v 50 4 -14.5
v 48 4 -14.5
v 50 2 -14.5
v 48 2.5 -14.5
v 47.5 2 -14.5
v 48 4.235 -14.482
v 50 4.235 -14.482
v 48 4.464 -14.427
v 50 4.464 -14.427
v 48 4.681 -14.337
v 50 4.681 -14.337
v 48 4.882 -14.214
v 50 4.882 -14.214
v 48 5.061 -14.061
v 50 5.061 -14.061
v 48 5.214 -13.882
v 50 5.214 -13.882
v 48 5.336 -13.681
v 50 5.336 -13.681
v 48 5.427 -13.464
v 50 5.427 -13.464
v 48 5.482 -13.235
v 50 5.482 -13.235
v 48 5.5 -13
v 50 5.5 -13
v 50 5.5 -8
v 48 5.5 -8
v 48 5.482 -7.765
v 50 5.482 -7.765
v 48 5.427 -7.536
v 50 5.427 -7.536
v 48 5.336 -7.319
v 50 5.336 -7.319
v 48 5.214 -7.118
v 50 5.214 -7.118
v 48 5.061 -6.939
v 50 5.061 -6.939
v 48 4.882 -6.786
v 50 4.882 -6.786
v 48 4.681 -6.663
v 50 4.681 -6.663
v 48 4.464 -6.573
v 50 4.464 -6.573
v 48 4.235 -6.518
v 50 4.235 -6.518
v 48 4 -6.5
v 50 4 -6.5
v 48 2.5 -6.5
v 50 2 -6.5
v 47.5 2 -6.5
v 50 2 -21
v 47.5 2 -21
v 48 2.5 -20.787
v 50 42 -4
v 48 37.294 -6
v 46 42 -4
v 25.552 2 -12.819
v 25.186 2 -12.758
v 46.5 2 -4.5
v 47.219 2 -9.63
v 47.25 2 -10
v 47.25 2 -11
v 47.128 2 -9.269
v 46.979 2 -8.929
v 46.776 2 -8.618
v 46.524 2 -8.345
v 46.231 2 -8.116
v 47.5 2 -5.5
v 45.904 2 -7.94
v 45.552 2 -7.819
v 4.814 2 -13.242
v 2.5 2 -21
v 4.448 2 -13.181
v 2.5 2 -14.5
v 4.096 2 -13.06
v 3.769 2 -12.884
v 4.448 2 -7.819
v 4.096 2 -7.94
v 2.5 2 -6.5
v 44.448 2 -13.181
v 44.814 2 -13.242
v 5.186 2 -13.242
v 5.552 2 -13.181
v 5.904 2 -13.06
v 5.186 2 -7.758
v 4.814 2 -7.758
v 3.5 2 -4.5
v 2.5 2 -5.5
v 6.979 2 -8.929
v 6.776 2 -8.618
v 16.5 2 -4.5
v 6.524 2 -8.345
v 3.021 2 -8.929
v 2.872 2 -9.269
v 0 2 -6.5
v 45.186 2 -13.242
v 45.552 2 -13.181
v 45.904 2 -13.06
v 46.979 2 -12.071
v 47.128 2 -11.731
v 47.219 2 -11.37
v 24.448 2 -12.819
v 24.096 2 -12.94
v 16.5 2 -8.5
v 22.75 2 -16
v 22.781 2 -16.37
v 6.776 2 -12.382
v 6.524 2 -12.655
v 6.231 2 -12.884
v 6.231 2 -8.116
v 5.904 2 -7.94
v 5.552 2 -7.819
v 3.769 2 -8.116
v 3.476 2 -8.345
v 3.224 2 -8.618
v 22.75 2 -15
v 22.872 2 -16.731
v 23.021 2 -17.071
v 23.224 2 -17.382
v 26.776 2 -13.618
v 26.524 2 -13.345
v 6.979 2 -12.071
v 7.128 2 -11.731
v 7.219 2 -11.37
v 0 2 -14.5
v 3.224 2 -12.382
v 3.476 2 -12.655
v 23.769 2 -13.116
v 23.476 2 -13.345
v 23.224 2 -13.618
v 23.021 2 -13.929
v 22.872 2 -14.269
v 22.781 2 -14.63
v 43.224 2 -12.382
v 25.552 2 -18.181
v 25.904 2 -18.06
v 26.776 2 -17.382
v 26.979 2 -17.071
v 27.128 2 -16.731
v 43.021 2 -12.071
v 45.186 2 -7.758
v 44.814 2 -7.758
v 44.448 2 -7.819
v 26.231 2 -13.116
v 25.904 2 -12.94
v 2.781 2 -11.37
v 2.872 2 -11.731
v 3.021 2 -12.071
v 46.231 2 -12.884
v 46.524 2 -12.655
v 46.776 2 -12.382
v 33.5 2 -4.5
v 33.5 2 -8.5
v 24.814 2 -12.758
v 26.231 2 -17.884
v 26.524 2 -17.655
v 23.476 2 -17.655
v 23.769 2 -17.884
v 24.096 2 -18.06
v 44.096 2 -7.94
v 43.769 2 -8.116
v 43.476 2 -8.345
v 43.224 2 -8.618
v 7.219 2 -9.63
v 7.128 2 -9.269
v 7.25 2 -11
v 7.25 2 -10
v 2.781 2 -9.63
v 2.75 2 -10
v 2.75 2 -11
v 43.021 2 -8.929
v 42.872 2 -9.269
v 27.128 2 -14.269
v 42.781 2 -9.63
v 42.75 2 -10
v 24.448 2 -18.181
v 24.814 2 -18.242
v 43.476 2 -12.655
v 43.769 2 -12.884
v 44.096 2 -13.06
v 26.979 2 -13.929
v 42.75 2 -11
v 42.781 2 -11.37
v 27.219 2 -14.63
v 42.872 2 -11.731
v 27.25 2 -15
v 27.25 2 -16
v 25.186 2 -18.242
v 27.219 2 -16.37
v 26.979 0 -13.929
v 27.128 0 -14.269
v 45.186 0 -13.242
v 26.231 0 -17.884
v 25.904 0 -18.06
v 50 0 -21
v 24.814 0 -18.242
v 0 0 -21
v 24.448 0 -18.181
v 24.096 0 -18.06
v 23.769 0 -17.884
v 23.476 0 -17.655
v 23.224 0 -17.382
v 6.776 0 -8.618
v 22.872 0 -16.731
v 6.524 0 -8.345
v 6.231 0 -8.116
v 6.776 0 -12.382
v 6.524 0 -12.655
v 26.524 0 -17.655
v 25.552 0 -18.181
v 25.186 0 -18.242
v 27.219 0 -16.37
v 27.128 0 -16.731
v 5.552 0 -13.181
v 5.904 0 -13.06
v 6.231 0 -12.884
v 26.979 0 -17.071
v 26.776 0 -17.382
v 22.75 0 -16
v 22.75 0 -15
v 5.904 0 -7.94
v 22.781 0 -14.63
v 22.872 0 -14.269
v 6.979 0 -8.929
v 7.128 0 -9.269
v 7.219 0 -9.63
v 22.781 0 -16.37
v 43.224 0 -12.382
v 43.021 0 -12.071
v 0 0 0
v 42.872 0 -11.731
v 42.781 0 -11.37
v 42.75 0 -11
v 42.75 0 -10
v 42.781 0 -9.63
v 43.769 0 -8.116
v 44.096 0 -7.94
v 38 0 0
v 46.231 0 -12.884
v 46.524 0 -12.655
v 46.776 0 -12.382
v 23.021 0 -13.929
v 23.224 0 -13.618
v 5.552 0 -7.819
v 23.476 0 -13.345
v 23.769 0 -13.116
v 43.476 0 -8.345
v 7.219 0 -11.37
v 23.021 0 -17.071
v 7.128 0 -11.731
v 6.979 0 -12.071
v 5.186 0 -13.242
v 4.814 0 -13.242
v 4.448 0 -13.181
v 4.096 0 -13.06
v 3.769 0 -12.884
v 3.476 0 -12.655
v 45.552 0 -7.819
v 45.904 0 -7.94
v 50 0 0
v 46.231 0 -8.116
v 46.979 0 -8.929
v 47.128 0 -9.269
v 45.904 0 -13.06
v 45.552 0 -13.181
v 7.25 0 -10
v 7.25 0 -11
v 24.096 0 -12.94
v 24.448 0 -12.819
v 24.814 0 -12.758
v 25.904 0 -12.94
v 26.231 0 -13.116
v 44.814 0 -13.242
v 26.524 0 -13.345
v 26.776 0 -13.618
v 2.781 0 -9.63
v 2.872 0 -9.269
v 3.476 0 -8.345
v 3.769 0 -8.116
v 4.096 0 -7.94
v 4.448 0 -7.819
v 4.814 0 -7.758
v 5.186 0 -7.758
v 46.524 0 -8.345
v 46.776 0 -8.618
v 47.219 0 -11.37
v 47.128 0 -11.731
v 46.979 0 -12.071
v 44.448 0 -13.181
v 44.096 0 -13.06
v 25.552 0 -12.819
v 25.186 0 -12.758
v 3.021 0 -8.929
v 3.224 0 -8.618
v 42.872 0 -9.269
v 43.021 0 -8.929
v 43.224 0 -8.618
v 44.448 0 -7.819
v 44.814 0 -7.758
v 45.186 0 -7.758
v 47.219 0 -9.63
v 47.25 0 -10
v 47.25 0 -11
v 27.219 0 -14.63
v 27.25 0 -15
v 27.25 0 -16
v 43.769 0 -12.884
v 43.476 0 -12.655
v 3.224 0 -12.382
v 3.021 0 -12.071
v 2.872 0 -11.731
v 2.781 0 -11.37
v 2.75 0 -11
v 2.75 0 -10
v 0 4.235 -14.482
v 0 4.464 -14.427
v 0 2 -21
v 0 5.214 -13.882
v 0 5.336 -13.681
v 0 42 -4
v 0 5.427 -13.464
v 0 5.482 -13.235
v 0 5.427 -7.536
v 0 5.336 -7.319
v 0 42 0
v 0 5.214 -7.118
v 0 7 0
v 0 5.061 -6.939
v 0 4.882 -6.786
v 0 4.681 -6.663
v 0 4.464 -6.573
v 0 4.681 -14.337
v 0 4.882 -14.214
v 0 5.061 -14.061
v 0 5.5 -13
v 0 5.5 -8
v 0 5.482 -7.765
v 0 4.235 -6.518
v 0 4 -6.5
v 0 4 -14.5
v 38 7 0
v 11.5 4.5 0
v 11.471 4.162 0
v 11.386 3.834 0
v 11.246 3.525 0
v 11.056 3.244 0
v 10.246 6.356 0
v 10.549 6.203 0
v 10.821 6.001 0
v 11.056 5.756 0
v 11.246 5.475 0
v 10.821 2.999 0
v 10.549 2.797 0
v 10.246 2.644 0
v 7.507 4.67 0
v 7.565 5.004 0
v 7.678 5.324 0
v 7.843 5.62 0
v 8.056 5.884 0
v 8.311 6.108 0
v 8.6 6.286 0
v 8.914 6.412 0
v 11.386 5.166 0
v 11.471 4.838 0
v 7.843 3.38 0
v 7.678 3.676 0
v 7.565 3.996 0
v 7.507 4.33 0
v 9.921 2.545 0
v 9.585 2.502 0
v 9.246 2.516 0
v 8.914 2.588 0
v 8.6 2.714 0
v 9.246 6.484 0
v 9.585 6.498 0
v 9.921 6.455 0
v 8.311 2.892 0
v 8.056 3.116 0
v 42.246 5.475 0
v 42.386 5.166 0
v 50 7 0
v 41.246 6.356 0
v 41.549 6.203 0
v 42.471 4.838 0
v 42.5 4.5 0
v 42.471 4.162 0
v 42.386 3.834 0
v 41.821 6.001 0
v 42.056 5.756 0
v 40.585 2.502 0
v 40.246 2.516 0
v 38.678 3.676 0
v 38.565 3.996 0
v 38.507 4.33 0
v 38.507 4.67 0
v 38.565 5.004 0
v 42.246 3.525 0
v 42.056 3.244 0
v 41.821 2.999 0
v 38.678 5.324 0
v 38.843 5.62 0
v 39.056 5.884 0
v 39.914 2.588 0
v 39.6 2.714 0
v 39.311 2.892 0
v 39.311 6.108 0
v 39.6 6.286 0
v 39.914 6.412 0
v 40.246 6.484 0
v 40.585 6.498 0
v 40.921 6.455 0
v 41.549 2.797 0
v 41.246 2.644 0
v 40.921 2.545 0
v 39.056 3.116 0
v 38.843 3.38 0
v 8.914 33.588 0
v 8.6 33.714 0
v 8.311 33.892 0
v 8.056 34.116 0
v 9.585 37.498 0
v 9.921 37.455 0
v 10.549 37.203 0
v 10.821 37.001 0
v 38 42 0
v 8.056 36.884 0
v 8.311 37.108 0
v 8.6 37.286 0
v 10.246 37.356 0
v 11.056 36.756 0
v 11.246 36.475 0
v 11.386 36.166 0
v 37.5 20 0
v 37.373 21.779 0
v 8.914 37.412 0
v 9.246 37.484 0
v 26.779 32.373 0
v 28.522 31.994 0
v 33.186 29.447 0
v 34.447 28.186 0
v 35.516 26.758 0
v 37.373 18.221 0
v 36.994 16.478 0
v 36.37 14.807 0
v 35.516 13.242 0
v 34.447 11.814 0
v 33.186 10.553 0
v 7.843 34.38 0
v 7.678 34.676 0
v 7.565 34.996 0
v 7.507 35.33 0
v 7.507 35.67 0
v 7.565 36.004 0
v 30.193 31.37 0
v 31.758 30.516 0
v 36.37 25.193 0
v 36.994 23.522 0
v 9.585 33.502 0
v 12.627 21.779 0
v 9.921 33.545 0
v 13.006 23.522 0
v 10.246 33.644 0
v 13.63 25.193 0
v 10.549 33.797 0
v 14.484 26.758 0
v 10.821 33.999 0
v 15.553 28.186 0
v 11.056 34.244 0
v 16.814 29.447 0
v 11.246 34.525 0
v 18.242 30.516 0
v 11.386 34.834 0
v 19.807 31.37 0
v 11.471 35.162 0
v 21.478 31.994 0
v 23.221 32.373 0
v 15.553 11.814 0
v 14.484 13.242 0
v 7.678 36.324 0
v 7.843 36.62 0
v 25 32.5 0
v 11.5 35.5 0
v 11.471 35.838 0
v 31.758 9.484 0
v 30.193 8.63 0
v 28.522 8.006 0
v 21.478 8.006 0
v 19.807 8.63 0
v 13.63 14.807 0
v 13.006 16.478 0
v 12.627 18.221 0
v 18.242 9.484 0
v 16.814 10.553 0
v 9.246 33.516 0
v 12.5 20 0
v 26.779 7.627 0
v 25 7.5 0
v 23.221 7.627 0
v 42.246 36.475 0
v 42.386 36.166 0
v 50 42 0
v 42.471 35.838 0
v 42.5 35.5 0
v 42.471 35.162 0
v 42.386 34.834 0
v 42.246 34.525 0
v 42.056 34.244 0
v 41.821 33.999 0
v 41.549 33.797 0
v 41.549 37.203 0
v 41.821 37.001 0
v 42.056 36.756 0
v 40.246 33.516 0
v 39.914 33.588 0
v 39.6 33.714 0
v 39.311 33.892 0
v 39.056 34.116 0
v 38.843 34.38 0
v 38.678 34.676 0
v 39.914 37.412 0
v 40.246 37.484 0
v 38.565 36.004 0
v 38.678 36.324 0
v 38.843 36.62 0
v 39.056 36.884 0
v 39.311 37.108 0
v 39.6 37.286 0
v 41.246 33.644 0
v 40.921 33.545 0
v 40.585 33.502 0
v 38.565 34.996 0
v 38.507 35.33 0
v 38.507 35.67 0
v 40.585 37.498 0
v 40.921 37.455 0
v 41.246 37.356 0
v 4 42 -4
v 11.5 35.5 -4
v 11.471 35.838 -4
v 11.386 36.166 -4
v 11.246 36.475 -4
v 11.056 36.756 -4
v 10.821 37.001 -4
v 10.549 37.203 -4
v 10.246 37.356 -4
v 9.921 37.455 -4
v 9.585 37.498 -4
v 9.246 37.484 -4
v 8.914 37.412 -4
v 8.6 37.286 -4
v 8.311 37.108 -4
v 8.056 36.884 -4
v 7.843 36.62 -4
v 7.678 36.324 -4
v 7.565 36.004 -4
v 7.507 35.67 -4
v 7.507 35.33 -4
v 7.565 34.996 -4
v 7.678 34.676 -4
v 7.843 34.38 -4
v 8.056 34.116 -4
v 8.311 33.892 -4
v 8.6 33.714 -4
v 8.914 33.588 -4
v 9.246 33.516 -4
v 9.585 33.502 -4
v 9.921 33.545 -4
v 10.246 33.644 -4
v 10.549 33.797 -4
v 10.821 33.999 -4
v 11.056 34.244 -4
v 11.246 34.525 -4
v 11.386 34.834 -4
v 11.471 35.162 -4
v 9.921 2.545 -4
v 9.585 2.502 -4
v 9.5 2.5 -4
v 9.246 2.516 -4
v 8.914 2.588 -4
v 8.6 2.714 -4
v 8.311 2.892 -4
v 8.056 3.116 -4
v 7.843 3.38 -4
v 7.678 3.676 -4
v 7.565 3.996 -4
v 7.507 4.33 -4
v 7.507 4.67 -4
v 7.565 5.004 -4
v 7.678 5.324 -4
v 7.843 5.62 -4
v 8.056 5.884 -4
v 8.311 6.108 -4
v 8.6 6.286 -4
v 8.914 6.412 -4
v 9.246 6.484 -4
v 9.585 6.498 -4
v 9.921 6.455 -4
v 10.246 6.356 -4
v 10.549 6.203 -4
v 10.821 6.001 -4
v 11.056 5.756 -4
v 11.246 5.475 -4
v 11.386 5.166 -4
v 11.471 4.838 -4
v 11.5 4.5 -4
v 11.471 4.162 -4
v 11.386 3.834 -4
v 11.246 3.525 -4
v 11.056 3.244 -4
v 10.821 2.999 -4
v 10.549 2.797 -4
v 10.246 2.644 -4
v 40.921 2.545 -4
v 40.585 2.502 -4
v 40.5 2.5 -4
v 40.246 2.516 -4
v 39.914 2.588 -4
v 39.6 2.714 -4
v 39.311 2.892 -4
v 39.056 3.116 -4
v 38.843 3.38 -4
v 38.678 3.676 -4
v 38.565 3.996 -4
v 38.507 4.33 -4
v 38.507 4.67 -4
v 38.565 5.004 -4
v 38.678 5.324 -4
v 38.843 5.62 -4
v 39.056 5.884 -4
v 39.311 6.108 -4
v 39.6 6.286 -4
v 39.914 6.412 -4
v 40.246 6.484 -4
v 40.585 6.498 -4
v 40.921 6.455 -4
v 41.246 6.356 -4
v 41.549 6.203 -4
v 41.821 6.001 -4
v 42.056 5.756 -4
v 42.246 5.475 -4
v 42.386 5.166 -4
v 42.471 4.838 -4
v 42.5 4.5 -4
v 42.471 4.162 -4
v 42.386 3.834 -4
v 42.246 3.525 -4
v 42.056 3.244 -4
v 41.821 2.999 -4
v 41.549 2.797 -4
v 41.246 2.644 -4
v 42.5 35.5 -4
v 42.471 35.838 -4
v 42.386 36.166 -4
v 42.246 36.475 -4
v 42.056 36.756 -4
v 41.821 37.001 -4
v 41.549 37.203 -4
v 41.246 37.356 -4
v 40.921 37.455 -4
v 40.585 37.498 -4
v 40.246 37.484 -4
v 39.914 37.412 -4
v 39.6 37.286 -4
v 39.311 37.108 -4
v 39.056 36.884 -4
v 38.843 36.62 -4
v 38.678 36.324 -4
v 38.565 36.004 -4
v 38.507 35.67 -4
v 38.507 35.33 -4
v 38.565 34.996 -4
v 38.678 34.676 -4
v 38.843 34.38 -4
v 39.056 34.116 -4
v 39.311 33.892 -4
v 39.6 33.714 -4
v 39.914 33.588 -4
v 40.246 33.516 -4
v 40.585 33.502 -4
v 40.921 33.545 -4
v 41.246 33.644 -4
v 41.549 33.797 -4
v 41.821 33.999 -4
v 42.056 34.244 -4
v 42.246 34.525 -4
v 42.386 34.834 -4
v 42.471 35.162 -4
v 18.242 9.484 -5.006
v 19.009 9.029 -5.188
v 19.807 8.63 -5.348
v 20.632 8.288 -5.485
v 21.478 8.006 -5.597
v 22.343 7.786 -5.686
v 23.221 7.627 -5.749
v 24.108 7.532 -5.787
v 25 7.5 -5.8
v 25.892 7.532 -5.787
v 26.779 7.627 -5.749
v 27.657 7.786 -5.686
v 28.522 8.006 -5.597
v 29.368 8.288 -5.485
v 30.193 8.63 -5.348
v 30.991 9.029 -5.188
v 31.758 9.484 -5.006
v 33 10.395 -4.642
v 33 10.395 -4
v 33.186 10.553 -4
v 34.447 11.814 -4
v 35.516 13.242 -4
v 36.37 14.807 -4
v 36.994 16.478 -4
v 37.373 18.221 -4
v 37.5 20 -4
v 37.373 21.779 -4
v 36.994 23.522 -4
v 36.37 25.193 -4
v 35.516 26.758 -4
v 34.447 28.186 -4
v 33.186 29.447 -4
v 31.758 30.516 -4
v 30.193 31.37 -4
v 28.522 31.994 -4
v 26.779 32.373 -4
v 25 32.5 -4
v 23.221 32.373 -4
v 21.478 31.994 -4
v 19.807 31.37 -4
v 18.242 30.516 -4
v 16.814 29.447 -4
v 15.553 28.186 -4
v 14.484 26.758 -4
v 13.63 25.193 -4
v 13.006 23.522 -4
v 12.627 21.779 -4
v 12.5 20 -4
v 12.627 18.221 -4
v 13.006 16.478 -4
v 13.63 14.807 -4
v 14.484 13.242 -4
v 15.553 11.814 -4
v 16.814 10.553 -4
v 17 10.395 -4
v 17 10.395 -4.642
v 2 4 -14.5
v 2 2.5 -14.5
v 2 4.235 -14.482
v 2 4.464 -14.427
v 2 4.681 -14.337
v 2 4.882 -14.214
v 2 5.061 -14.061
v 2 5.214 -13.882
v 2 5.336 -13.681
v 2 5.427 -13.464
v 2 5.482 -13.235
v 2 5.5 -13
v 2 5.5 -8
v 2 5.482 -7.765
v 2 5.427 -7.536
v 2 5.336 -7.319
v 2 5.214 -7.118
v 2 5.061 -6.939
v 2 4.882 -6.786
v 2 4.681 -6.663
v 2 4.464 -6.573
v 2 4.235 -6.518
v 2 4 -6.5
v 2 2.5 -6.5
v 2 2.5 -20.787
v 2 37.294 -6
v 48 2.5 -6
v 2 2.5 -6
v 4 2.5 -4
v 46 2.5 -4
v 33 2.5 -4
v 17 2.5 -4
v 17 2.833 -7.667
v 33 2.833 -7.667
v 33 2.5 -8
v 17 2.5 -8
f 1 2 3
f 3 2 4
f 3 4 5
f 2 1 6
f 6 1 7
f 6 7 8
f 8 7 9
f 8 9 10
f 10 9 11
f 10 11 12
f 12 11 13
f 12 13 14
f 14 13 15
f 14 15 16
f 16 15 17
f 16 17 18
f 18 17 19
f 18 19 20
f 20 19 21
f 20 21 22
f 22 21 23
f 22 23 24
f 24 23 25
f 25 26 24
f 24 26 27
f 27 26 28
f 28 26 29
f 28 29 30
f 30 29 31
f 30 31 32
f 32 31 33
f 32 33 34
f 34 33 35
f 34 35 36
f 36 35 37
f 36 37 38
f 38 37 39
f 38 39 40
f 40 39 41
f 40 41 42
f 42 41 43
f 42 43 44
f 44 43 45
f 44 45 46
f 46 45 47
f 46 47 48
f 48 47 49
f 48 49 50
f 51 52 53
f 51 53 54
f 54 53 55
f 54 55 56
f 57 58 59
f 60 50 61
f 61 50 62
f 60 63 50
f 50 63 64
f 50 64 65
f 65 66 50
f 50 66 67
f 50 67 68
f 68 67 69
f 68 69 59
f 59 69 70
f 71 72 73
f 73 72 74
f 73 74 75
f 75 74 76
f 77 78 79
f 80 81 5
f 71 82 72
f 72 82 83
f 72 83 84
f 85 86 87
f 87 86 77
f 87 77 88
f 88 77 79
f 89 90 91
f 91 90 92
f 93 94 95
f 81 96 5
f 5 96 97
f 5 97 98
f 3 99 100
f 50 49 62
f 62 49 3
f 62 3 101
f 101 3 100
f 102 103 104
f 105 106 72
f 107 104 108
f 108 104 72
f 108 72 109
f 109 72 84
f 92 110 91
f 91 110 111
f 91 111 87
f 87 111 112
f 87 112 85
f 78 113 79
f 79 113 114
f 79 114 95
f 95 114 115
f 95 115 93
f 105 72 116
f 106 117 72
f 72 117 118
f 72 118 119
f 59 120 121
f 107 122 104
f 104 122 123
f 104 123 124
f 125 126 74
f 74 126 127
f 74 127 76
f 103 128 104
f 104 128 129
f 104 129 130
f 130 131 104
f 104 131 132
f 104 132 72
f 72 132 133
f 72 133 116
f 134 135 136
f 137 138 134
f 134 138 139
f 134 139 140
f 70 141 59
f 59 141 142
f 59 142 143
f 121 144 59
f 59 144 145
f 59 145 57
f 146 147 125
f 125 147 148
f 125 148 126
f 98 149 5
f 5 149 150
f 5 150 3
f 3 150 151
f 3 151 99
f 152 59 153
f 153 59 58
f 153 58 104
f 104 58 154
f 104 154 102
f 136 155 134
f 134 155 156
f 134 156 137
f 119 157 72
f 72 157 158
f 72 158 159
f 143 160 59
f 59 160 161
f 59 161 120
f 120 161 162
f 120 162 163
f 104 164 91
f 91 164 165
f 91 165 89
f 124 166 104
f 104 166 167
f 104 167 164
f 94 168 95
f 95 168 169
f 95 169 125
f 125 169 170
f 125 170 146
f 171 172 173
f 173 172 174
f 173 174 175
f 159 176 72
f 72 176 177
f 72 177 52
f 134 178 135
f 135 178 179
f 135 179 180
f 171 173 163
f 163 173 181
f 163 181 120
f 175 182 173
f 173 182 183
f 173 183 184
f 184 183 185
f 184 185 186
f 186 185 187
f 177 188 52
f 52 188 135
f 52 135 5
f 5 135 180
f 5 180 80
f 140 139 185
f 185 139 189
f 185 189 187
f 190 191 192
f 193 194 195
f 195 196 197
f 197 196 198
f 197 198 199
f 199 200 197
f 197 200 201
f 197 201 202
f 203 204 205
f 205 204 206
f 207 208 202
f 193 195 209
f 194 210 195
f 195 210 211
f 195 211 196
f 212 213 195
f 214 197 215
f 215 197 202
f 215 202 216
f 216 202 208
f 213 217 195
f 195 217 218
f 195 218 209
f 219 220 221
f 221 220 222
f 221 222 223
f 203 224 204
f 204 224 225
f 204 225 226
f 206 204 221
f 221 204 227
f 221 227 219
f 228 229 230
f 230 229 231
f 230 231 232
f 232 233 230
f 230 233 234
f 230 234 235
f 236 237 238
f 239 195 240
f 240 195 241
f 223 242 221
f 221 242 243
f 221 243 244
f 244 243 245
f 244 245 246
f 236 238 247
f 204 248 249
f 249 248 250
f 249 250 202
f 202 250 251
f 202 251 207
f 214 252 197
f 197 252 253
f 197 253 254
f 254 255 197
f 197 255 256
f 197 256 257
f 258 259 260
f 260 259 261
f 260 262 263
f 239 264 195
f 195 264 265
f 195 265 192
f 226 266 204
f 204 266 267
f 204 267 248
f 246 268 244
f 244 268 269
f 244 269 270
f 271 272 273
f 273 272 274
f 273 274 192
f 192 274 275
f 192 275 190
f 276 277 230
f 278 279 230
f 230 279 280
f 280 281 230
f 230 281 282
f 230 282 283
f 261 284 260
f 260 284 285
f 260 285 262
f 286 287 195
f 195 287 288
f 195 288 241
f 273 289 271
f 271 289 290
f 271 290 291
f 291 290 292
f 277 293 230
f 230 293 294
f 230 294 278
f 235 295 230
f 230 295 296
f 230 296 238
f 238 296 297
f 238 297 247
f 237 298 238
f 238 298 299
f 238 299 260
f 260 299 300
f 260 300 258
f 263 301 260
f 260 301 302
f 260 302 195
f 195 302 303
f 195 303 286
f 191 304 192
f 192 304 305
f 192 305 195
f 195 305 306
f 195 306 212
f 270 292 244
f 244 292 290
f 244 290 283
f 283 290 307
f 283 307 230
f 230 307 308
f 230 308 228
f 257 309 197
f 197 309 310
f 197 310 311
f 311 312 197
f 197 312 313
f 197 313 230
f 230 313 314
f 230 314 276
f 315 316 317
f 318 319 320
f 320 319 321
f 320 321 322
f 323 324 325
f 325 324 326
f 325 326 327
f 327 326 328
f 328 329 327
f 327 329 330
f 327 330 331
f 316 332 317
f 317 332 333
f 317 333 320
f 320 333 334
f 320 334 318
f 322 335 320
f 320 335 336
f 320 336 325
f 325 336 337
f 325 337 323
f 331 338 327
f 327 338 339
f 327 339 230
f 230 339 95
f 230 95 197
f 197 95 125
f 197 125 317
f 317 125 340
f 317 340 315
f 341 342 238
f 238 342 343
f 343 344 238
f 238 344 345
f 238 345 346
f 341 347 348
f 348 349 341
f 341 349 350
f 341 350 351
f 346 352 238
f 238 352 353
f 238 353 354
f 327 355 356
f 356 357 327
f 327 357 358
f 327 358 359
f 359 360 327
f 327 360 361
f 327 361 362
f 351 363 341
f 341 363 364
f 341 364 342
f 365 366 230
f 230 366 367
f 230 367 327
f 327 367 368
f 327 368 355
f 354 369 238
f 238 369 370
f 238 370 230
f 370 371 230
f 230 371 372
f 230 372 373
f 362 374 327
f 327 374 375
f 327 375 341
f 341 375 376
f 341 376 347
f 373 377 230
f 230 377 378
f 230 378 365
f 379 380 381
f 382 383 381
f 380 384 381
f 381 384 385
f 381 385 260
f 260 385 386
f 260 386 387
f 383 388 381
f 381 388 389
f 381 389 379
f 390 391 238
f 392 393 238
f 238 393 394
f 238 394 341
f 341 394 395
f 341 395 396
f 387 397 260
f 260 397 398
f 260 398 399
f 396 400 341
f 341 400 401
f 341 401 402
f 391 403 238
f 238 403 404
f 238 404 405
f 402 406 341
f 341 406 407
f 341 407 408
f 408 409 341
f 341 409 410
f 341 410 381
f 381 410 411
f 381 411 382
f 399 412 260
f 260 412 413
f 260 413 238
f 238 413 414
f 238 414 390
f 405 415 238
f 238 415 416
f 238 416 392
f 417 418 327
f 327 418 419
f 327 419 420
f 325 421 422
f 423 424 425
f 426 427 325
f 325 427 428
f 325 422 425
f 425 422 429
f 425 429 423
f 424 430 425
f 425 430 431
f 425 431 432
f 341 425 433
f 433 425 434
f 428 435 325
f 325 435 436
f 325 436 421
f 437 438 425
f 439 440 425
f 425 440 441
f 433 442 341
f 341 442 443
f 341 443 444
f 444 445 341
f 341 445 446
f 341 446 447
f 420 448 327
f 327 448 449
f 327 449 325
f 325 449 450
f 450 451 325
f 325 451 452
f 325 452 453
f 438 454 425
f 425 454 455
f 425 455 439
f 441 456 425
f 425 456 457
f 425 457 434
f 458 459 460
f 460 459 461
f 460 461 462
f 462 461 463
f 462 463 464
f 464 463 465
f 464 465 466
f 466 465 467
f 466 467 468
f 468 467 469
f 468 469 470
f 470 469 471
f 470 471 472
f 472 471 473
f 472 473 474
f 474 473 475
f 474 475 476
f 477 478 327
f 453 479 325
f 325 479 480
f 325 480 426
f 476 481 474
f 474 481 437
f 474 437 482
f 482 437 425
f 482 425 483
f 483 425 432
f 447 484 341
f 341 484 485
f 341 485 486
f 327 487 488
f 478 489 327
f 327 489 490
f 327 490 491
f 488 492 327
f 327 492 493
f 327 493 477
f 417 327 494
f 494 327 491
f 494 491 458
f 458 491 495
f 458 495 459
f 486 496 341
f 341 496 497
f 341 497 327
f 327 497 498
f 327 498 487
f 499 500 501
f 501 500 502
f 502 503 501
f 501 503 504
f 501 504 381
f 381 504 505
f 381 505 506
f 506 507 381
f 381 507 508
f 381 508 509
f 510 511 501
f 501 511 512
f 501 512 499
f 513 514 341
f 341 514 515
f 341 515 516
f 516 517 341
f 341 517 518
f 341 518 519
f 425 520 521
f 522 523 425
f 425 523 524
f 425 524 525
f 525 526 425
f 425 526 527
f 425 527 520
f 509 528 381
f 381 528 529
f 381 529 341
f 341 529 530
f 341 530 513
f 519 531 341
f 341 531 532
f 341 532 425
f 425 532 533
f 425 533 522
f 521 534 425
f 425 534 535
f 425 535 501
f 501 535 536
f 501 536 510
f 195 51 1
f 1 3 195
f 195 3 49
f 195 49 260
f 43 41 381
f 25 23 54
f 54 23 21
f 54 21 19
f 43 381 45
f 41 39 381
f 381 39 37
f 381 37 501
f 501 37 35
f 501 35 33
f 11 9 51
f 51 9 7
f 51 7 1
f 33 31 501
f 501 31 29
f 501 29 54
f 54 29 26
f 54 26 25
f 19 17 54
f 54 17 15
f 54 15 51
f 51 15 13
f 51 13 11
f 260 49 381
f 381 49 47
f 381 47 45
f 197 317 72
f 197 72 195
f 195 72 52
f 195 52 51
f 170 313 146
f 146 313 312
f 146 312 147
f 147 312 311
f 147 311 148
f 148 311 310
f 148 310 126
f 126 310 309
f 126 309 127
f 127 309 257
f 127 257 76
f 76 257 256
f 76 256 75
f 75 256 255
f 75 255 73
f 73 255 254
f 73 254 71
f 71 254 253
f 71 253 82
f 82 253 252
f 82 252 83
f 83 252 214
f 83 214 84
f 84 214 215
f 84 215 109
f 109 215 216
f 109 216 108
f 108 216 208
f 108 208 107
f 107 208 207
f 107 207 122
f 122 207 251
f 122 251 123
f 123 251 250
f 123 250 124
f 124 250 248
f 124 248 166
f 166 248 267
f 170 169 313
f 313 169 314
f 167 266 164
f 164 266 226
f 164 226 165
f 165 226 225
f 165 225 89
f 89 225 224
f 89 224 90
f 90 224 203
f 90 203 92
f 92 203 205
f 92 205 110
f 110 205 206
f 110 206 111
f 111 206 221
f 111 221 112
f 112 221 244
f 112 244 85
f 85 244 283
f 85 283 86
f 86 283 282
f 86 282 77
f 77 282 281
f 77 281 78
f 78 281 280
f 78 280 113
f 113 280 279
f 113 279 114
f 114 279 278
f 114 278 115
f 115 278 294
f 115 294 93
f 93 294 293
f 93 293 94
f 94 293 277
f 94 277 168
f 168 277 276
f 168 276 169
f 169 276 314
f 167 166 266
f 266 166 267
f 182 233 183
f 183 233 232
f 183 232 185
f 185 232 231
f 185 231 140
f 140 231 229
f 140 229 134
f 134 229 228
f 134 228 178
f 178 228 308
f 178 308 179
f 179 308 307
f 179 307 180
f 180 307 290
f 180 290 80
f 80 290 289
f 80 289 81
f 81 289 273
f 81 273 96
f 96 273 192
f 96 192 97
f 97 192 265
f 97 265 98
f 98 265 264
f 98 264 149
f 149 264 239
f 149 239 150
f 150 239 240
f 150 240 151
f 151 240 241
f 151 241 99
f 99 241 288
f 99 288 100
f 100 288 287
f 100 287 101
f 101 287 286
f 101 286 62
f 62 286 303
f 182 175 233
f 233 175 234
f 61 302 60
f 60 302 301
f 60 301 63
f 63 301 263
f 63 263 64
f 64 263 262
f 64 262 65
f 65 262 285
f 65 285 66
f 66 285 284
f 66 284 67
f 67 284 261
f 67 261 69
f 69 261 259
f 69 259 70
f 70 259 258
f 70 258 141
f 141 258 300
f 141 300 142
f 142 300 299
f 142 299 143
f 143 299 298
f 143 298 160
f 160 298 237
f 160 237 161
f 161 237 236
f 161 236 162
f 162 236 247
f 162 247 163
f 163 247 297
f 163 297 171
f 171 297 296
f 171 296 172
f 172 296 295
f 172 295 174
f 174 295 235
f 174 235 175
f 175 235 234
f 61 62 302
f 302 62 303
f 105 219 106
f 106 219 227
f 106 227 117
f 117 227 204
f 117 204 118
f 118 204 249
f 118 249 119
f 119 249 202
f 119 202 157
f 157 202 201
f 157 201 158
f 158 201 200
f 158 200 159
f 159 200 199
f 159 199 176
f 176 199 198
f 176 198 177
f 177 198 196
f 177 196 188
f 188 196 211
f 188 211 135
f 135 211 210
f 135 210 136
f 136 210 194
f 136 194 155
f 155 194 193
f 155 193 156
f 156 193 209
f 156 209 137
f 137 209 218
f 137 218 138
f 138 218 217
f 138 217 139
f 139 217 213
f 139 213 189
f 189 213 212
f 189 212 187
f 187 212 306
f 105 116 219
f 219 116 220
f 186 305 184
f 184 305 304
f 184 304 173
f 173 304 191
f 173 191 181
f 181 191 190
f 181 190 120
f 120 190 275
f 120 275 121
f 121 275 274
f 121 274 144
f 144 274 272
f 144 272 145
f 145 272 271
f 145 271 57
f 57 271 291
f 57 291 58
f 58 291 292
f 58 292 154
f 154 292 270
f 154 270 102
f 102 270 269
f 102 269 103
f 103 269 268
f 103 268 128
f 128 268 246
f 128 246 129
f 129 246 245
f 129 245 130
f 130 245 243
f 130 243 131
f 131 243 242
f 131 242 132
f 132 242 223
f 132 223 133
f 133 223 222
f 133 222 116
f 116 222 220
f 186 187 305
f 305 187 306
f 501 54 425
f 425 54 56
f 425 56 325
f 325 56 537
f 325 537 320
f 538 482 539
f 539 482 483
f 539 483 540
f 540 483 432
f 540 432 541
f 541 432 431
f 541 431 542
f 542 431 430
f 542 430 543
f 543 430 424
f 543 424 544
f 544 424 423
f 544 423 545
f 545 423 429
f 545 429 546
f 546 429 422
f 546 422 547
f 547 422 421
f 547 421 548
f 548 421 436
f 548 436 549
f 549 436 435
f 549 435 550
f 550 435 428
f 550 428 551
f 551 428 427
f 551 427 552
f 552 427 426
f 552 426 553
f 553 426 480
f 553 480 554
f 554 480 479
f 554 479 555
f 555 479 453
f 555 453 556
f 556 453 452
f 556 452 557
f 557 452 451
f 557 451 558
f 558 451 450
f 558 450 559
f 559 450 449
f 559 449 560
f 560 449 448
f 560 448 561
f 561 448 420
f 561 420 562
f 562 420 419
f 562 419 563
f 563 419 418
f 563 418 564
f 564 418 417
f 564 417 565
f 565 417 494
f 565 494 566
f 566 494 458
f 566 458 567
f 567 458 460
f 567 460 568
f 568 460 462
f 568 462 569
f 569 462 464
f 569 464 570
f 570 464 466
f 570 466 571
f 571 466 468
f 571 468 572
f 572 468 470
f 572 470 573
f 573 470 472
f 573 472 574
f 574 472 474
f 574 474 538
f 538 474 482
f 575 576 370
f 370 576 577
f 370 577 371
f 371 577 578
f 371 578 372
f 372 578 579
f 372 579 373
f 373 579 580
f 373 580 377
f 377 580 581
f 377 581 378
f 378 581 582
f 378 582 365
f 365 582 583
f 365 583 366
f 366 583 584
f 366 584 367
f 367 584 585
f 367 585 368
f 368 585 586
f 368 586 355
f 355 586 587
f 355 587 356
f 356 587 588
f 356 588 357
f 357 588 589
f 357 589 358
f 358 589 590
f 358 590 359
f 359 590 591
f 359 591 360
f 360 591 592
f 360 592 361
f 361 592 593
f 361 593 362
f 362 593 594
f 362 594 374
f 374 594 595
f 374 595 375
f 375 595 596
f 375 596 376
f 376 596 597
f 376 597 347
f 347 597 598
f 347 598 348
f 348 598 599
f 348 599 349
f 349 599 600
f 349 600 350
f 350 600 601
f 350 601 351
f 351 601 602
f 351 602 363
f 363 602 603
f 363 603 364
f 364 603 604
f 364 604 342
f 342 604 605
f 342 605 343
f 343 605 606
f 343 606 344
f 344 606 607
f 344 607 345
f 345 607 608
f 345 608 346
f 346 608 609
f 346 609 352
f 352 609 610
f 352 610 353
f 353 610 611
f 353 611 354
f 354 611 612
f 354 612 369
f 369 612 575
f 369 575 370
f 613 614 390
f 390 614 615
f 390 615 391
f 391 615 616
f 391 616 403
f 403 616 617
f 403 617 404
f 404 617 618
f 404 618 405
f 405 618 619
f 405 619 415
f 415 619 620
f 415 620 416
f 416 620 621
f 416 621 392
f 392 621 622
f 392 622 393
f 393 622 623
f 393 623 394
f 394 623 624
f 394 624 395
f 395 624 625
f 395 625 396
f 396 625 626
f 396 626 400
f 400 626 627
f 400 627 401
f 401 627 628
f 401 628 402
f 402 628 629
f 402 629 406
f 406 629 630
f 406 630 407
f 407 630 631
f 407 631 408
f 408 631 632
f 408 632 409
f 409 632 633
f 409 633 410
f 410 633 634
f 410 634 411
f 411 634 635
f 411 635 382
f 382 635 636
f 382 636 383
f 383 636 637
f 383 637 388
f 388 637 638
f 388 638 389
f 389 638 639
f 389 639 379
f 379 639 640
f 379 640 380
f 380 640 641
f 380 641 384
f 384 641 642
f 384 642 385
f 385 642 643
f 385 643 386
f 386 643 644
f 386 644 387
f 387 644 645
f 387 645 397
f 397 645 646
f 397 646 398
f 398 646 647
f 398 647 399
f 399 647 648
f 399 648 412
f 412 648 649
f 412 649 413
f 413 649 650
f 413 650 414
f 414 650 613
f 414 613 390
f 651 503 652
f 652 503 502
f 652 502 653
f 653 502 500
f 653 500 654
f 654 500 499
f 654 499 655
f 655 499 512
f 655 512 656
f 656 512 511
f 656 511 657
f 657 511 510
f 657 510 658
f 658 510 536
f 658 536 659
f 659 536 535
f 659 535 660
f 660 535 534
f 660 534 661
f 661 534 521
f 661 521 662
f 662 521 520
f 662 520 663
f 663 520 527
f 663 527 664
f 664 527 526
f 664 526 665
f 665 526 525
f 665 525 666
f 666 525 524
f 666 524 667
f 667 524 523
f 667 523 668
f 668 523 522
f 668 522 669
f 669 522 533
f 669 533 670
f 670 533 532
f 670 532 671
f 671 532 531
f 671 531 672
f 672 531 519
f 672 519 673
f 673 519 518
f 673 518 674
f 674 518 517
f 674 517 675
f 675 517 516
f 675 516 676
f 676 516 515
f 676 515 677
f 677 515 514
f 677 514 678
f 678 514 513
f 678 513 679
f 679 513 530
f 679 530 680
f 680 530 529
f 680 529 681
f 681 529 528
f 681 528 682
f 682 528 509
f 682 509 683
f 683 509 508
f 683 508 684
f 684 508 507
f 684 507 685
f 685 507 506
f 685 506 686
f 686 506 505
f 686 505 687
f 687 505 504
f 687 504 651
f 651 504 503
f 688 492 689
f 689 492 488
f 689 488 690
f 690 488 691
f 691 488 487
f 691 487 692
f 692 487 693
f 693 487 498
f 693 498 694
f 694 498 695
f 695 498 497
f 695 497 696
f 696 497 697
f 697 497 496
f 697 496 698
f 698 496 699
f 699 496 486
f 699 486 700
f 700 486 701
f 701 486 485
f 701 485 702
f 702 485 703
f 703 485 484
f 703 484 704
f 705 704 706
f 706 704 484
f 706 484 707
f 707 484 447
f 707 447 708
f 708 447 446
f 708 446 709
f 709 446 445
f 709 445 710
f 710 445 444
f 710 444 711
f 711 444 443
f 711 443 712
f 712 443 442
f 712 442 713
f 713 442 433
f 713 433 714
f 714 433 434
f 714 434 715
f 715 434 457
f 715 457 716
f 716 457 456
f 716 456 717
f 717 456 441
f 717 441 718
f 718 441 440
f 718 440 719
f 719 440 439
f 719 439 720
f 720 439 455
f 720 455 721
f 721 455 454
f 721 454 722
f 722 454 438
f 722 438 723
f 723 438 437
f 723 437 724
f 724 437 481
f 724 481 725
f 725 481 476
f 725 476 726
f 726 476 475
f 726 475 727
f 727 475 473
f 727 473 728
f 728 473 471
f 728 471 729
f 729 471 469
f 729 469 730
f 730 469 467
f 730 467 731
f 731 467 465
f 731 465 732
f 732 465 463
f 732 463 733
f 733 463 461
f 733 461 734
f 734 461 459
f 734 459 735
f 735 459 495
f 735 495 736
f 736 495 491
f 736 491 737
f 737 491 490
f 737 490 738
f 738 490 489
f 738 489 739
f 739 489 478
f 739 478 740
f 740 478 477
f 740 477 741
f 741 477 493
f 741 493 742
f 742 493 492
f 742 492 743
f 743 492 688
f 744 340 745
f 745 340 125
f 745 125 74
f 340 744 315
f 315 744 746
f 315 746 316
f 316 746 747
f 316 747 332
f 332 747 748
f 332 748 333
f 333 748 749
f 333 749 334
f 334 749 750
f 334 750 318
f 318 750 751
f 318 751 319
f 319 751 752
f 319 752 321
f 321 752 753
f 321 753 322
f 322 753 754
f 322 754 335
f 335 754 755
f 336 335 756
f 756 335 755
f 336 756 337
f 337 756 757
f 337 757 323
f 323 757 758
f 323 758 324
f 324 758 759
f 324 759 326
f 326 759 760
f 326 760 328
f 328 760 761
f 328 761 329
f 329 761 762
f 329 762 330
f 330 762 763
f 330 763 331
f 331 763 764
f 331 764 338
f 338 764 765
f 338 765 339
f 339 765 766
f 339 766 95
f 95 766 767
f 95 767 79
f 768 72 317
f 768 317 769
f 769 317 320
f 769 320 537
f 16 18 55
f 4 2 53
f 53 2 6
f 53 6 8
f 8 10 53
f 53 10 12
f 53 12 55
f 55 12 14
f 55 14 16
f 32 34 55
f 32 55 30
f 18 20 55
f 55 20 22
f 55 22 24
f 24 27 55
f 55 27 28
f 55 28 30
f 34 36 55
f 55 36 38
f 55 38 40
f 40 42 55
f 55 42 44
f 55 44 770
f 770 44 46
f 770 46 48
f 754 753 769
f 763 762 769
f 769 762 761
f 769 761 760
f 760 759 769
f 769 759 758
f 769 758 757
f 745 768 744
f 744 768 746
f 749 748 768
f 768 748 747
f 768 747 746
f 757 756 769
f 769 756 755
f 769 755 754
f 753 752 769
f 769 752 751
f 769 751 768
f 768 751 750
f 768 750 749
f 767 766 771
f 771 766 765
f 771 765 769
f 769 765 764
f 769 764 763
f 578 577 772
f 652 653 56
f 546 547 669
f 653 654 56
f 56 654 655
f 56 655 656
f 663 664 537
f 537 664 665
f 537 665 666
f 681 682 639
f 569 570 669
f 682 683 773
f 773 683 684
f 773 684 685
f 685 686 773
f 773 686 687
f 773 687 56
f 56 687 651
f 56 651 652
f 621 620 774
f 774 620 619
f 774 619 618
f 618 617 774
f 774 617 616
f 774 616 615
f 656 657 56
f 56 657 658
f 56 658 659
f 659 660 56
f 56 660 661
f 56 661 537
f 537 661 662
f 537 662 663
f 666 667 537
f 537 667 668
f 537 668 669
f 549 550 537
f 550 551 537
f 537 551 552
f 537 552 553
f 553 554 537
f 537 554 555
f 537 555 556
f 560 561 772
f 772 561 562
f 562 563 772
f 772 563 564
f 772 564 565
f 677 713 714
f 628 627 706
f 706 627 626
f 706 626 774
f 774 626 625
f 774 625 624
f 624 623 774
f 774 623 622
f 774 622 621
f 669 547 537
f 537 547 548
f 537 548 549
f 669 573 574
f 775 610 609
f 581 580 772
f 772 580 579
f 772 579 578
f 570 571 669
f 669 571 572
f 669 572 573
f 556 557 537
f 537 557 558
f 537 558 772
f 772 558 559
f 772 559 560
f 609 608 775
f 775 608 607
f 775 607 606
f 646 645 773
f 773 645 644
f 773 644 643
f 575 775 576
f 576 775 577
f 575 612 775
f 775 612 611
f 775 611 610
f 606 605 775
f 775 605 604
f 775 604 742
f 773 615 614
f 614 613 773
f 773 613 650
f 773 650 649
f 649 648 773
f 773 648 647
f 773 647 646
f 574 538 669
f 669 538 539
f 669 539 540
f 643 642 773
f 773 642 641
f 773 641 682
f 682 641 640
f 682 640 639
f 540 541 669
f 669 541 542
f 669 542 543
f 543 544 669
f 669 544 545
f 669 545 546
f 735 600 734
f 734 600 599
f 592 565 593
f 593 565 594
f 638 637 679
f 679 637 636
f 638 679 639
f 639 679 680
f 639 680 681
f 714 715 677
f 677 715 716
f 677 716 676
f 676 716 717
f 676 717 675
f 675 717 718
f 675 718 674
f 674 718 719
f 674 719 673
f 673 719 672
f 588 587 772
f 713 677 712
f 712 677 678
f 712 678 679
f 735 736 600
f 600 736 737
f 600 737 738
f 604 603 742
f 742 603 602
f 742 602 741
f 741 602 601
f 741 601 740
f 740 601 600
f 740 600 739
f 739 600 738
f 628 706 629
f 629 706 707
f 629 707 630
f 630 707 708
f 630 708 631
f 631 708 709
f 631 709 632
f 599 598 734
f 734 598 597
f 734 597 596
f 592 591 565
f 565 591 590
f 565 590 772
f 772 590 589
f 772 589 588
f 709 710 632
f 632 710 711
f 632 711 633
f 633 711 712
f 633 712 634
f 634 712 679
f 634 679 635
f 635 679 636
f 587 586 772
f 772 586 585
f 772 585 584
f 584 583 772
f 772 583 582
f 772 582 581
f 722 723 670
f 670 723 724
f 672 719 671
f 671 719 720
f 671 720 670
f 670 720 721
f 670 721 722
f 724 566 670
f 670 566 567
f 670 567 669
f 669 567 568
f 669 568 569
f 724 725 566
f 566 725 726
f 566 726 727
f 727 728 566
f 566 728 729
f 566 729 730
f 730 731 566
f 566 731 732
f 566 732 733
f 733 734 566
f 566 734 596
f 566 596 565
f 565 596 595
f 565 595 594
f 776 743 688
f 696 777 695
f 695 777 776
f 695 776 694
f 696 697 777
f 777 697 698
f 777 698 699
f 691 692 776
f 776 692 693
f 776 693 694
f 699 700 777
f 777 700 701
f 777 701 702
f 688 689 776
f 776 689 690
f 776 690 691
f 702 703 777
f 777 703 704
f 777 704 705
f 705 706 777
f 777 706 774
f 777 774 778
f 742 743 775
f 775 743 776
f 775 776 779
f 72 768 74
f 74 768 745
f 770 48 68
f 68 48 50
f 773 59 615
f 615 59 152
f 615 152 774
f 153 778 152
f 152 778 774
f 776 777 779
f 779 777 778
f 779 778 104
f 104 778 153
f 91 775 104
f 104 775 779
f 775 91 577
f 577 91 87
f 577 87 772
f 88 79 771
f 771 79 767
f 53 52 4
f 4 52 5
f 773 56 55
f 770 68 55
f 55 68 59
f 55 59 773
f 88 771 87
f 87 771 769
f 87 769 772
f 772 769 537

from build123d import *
from OCP.BRepFilletAPI import BRepFilletAPI_MakeChamfer

# Parameters (mm, degrees)
SKETCH1_W                  = 50
SKETCH1_H                  = 21
BASE_DEPTH                 = 2
SKETCH2_W                  = 50
SKETCH2_H                  = 42
SKETCH2_R                  = 2
SKETCH2_R_2                = 12.5
ENCAIXE_MOTOR_DEPTH        = 4
LATERAIS_START             = -50
LATERAIS_BLOCO_DEPTH       = 50
LATERAIS_START_2           = -17
SKETCH4_W                  = 46
SKETCH4_H                  = 40
LATERAIS_CORTE_DEPTH       = 17
SUPORTE_CENTRAL_DEPTH      = 8
SUPORTE_CENTRAL_DEPTH_BACK = 8
SKETCH6_R                  = 12.5
FURO_MOTOR_25_DEPTH        = 68.475921631
CHANFROS_1X45_SIZE         = 0.5
CHANFROS_1X45_SIZE_2       = 0.897527468
CHANFROS_2X45_SIZE         = 2


# Some blends are built 0.0001 mm under size
with BuildPart() as part:
    # Sketch1 → Base (new body)
    with BuildSketch(Plane(origin=(0, 0, 0), x_dir=(1, 0, 0), z_dir=(0, 1, 0))):
        with Locations((25, 10.5)):
            Rectangle(SKETCH1_W, SKETCH1_H)
        with BuildLine():
            Line((7.25, 11), (7.25, 10))
            ThreePointArc((7.25, 10), (5, 7.75), (2.75, 10))
            Line((2.75, 10), (2.75, 11))
            ThreePointArc((2.75, 11), (5, 13.25), (7.25, 11))
        make_face(mode=Mode.SUBTRACT)
        with BuildLine():
            Line((42.75, 11), (42.75, 10))
            ThreePointArc((42.75, 10), (45, 7.75), (47.25, 10))
            Line((47.25, 10), (47.25, 11))
            ThreePointArc((47.25, 11), (45, 13.25), (42.75, 11))
        make_face(mode=Mode.SUBTRACT)
        with BuildLine():
            Line((27.25, 16), (27.25, 15))
            ThreePointArc((27.25, 15), (25, 12.75), (22.75, 15))
            Line((22.75, 15), (22.75, 16))
            ThreePointArc((22.75, 16), (25, 18.25), (27.25, 16))
        make_face(mode=Mode.SUBTRACT)
    extrude(amount=BASE_DEPTH)

    # Sketch2 → Encaixe Motor (add)
    with BuildSketch(Plane.XY):
        with Locations((25, 21)):
            Rectangle(SKETCH2_W, SKETCH2_H)
        with Locations((9.5, 35.5)):
            Circle(SKETCH2_R, mode=Mode.SUBTRACT)
        with Locations((9.5, 4.5)):
            Circle(SKETCH2_R, mode=Mode.SUBTRACT)
        with Locations((40.5, 4.5)):
            Circle(SKETCH2_R, mode=Mode.SUBTRACT)
        with Locations((40.5, 35.5)):
            Circle(SKETCH2_R, mode=Mode.SUBTRACT)
        with Locations((25, 20)):
            Circle(SKETCH2_R_2, mode=Mode.SUBTRACT)
    extrude(amount=-ENCAIXE_MOTOR_DEPTH)

    # Sketch3 → Laterais - Bloco (add)
    with BuildSketch(Plane(origin=(50, 0, 0), x_dir=(0, 0, -1), z_dir=(1, 0, 0)).offset(LATERAIS_START)):
        with BuildLine():
            Line((21, 2), (4, 42))
            Line((4, 42), (4, 2))
            Line((4, 2), (6.5, 2))
            Line((6.5, 2), (6.5, 4))
            ThreePointArc((6.5, 4), (6.939339828, 5.060660172), (8, 5.5))
            Line((8, 5.5), (13, 5.5))
            ThreePointArc((13, 5.5), (14.060660172, 5.060660172), (14.5, 4))
            Line((14.5, 4), (14.5, 2))
            Line((14.5, 2), (21, 2))
        make_face()
    extrude(amount=LATERAIS_BLOCO_DEPTH)

    # Sketch4 → Laterais - Corte (cut)
    with BuildSketch(Plane(origin=(0, 0, -21), x_dir=(-1, 0, 0), z_dir=(0, 0, -1)).offset(LATERAIS_START_2)):
        with Locations((-25, 22)):
            Rectangle(SKETCH4_W, SKETCH4_H)
    extrude(amount=LATERAIS_CORTE_DEPTH, mode=Mode.SUBTRACT)

    # Sketch5 → Suporte Central (add, two sides: drawn at the far end of the back side and taken through both)
    with BuildSketch(Plane.ZY.offset(-25).offset(-SUPORTE_CENTRAL_DEPTH_BACK)):
        Polygon((-4, 2), (-8, 2), (-4, 12), align=None)
    extrude(amount=SUPORTE_CENTRAL_DEPTH + SUPORTE_CENTRAL_DEPTH_BACK)

    # Sketch6 → Furo Motor Ø25 (cut, through all)
    with BuildSketch(Plane.XY.offset(-4)):
        with Locations((25, 20)):
            Circle(SKETCH6_R)
    extrude(amount=-FURO_MOTOR_25_DEPTH, mode=Mode.SUBTRACT)

    # Chanfros 1x45°
    chanfros_1x45_edges_1 = [part.edges().sort_by_distance(p)[0] for p in [
        (2, 2, -17.75),
        (48, 2, -17.75),
        (48, 2, -5.25),
        (40.5, 2, -4),
        (2, 2, -5.25),
        (9.5, 2, -4),
        (33, 2, -6),
        (17, 2, -6),
    ]]
    chanfros_1x45_edges_2 = [part.edges().sort_by_distance(p)[0] for p in [
        (25, 2, -8),
    ]]
    chanfros_1x45_side_2 = [part.faces().sort_by_distance(p)[0] for p in [
        (25, 2, -8.01),
    ]]
    chanfros_1x45 = BRepFilletAPI_MakeChamfer(part.part.solid().wrapped)
    for e in chanfros_1x45_edges_1:
        chanfros_1x45.Add(CHANFROS_1X45_SIZE - 0.0001, e.wrapped)
    for e in chanfros_1x45_edges_2:
        chanfros_1x45.Add(CHANFROS_1X45_SIZE - 0.0001, CHANFROS_1X45_SIZE_2 - 0.0001, e.wrapped, chanfros_1x45_side_2[0].wrapped)
    add(Compound.cast(chanfros_1x45.Shape()), mode=Mode.REPLACE)  # a hair under: the kernel refuses the full size

    # Chanfros 2x45°
    # the kernel refuses this chamfer: 2 mm, written as the material it adds along each edge
    with BuildSketch(Plane(origin=(48, 42, -4), x_dir=(-0.9996219169112968, 0, 0.027495876610586726), z_dir=(0, -1, 0))) as chanfros_2x45_piece_1_section:
        Polygon((CHANFROS_2X45_SIZE * 0.999621916911, CHANFROS_2X45_SIZE * 0.0274958766106), (-CHANFROS_2X45_SIZE * 0.0274958766106, CHANFROS_2X45_SIZE * 0.999621916911), (0, 0), align=None)
    chanfros_2x45_piece_1 = extrude(amount=44.643465976, mode=Mode.PRIVATE)
    chanfros_2x45_piece_1 = split(chanfros_2x45_piece_1, bisect_by=Plane(origin=(47.331403888, 24.268482908, -11.535894764), z_dir=(0, -0.3911406403448519, 0.9203309184584747)), keep=Keep.TOP, mode=Mode.PRIVATE)
    chanfros_2x45_piece_1 = split(chanfros_2x45_piece_1, bisect_by=Plane(origin=(47.331403888, 11.597453936, 5.097553936), z_dir=(0, 0.7071067811865476, -0.7071067811865476)), keep=Keep.TOP, mode=Mode.PRIVATE)
    chanfros_2x45_piece_1 = split(chanfros_2x45_piece_1, bisect_by=Plane(origin=(57.08562089, 11.58552089, -4.64473002), z_dir=(-0.70710678118655, 0.707106781186545, 0)), keep=Keep.TOP, mode=Mode.PRIVATE)
    add(chanfros_2x45_piece_1)
    with BuildSketch(Plane(origin=(48, 42, -4), x_dir=(-0.9996219169112968, 0, 0.027495876610586726), z_dir=(0, -1, 0))) as chanfros_2x45_piece_2_section:
        Polygon((CHANFROS_2X45_SIZE * 0.999621916911, CHANFROS_2X45_SIZE * 0.0274958766106), (-CHANFROS_2X45_SIZE * 0.0274958766106, CHANFROS_2X45_SIZE * 0.999621916911), (0, 0), align=None)
    chanfros_2x45_piece_2 = extrude(amount=44.643465976, mode=Mode.PRIVATE)
    chanfros_2x45_piece_2 = split(chanfros_2x45_piece_2, bisect_by=Plane(origin=(47.794441496, 1.480569573, -5.019330427), z_dir=(0, 0.7071067811865476, -0.7071067811865476)), keep=Keep.TOP, mode=Mode.PRIVATE)
    chanfros_2x45_piece_2 = split(chanfros_2x45_piece_2, bisect_by=Plane(origin=(47.523184188, 2.023084188, -5.290587735), z_dir=(0.70710678118655, -0.707106781186545, 0)), keep=Keep.TOP, mode=Mode.PRIVATE)
    add(chanfros_2x45_piece_2)
    with BuildSketch(Plane(origin=(48, 42, -4), x_dir=(-0.9996219169112968, 0, 0.027495876610586726), z_dir=(0, -1, 0))) as chanfros_2x45_piece_3_section:
        Polygon((CHANFROS_2X45_SIZE * 0.999621916911, CHANFROS_2X45_SIZE * 0.0274958766106), (-CHANFROS_2X45_SIZE * 0.0274958766106, CHANFROS_2X45_SIZE * 0.999621916911), (0, 0), align=None)
    chanfros_2x45_piece_3 = extrude(amount=44.643465976, mode=Mode.PRIVATE)
    chanfros_2x45_piece_3 = split(chanfros_2x45_piece_3, bisect_by=Plane(origin=(46.709412265, 2.023084188, -4.476815812), z_dir=(0, -0.7071067811865476, 0.7071067811865476)), keep=Keep.TOP, mode=Mode.PRIVATE)
    chanfros_2x45_piece_3 = split(chanfros_2x45_piece_3, bisect_by=Plane(origin=(46.980669573, 1.480569573, -4.205558504), z_dir=(-0.70710678118655, 0.707106781186545, 0)), keep=Keep.TOP, mode=Mode.PRIVATE)
    add(chanfros_2x45_piece_3)
    with BuildSketch(Plane(origin=(2, -2.643465976, -4), x_dir=(0.9996219169112968, 0, 0.027495876610585838), z_dir=(0, 1, 0))) as chanfros_2x45_piece_4_section:
        Polygon((CHANFROS_2X45_SIZE * 0.999621916911, CHANFROS_2X45_SIZE * 0.0274958766106), (-CHANFROS_2X45_SIZE * 0.0274958766106, CHANFROS_2X45_SIZE * 0.999621916911), (0, 0), align=None)
    chanfros_2x45_piece_4 = extrude(amount=44.643465976, mode=Mode.PRIVATE)
    chanfros_2x45_piece_4 = split(chanfros_2x45_piece_4, bisect_by=Plane(origin=(2.205558504, 1.480569573, -5.019330427), z_dir=(0, 0.7071067811865476, -0.7071067811865476)), keep=Keep.TOP, mode=Mode.PRIVATE)
    chanfros_2x45_piece_4 = split(chanfros_2x45_piece_4, bisect_by=Plane(origin=(2.476815812, 2.023084188, -5.290587735), z_dir=(-0.7071067811865479, -0.7071067811865472, 0)), keep=Keep.TOP, mode=Mode.PRIVATE)
    add(chanfros_2x45_piece_4)
    with BuildSketch(Plane(origin=(2, -2.643465976, -4), x_dir=(0.9996219169112968, 0, 0.027495876610585838), z_dir=(0, 1, 0))) as chanfros_2x45_piece_5_section:
        Polygon((CHANFROS_2X45_SIZE * 0.999621916911, CHANFROS_2X45_SIZE * 0.0274958766106), (-CHANFROS_2X45_SIZE * 0.0274958766106, CHANFROS_2X45_SIZE * 0.999621916911), (0, 0), align=None)
    chanfros_2x45_piece_5 = extrude(amount=44.643465976, mode=Mode.PRIVATE)
    chanfros_2x45_piece_5 = split(chanfros_2x45_piece_5, bisect_by=Plane(origin=(3.290587735, 2.023084188, -4.476815812), z_dir=(0, -0.7071067811865476, 0.7071067811865476)), keep=Keep.TOP, mode=Mode.PRIVATE)
    chanfros_2x45_piece_5 = split(chanfros_2x45_piece_5, bisect_by=Plane(origin=(3.019330427, 1.480569573, -4.205558504), z_dir=(0.7071067811865479, 0.7071067811865472, 0)), keep=Keep.TOP, mode=Mode.PRIVATE)
    add(chanfros_2x45_piece_5)
    with BuildSketch(Plane(origin=(2, -2.643465976, -4), x_dir=(0.9996219169112968, 0, 0.027495876610585838), z_dir=(0, 1, 0))) as chanfros_2x45_piece_6_section:
        Polygon((CHANFROS_2X45_SIZE * 0.999621916911, CHANFROS_2X45_SIZE * 0.0274958766106), (-CHANFROS_2X45_SIZE * 0.0274958766106, CHANFROS_2X45_SIZE * 0.999621916911), (0, 0), align=None)
    chanfros_2x45_piece_6 = extrude(amount=44.643465976, mode=Mode.PRIVATE)
    chanfros_2x45_piece_6 = split(chanfros_2x45_piece_6, bisect_by=Plane(origin=(2.668596112, 11.597453936, 5.097553936), z_dir=(0, 0.7071067811865476, -0.7071067811865476)), keep=Keep.TOP, mode=Mode.PRIVATE)
    chanfros_2x45_piece_6 = split(chanfros_2x45_piece_6, bisect_by=Plane(origin=(-7.08562089, 11.58552089, -4.64473002), z_dir=(0.7071067811865479, 0.7071067811865472, 0)), keep=Keep.TOP, mode=Mode.PRIVATE)
    chanfros_2x45_piece_6 = split(chanfros_2x45_piece_6, bisect_by=Plane(origin=(2.668596112, 24.268482908, -11.535894764), z_dir=(0, -0.3911406403448519, 0.9203309184584747)), keep=Keep.TOP, mode=Mode.PRIVATE)
    add(chanfros_2x45_piece_6)


solid = part.part
